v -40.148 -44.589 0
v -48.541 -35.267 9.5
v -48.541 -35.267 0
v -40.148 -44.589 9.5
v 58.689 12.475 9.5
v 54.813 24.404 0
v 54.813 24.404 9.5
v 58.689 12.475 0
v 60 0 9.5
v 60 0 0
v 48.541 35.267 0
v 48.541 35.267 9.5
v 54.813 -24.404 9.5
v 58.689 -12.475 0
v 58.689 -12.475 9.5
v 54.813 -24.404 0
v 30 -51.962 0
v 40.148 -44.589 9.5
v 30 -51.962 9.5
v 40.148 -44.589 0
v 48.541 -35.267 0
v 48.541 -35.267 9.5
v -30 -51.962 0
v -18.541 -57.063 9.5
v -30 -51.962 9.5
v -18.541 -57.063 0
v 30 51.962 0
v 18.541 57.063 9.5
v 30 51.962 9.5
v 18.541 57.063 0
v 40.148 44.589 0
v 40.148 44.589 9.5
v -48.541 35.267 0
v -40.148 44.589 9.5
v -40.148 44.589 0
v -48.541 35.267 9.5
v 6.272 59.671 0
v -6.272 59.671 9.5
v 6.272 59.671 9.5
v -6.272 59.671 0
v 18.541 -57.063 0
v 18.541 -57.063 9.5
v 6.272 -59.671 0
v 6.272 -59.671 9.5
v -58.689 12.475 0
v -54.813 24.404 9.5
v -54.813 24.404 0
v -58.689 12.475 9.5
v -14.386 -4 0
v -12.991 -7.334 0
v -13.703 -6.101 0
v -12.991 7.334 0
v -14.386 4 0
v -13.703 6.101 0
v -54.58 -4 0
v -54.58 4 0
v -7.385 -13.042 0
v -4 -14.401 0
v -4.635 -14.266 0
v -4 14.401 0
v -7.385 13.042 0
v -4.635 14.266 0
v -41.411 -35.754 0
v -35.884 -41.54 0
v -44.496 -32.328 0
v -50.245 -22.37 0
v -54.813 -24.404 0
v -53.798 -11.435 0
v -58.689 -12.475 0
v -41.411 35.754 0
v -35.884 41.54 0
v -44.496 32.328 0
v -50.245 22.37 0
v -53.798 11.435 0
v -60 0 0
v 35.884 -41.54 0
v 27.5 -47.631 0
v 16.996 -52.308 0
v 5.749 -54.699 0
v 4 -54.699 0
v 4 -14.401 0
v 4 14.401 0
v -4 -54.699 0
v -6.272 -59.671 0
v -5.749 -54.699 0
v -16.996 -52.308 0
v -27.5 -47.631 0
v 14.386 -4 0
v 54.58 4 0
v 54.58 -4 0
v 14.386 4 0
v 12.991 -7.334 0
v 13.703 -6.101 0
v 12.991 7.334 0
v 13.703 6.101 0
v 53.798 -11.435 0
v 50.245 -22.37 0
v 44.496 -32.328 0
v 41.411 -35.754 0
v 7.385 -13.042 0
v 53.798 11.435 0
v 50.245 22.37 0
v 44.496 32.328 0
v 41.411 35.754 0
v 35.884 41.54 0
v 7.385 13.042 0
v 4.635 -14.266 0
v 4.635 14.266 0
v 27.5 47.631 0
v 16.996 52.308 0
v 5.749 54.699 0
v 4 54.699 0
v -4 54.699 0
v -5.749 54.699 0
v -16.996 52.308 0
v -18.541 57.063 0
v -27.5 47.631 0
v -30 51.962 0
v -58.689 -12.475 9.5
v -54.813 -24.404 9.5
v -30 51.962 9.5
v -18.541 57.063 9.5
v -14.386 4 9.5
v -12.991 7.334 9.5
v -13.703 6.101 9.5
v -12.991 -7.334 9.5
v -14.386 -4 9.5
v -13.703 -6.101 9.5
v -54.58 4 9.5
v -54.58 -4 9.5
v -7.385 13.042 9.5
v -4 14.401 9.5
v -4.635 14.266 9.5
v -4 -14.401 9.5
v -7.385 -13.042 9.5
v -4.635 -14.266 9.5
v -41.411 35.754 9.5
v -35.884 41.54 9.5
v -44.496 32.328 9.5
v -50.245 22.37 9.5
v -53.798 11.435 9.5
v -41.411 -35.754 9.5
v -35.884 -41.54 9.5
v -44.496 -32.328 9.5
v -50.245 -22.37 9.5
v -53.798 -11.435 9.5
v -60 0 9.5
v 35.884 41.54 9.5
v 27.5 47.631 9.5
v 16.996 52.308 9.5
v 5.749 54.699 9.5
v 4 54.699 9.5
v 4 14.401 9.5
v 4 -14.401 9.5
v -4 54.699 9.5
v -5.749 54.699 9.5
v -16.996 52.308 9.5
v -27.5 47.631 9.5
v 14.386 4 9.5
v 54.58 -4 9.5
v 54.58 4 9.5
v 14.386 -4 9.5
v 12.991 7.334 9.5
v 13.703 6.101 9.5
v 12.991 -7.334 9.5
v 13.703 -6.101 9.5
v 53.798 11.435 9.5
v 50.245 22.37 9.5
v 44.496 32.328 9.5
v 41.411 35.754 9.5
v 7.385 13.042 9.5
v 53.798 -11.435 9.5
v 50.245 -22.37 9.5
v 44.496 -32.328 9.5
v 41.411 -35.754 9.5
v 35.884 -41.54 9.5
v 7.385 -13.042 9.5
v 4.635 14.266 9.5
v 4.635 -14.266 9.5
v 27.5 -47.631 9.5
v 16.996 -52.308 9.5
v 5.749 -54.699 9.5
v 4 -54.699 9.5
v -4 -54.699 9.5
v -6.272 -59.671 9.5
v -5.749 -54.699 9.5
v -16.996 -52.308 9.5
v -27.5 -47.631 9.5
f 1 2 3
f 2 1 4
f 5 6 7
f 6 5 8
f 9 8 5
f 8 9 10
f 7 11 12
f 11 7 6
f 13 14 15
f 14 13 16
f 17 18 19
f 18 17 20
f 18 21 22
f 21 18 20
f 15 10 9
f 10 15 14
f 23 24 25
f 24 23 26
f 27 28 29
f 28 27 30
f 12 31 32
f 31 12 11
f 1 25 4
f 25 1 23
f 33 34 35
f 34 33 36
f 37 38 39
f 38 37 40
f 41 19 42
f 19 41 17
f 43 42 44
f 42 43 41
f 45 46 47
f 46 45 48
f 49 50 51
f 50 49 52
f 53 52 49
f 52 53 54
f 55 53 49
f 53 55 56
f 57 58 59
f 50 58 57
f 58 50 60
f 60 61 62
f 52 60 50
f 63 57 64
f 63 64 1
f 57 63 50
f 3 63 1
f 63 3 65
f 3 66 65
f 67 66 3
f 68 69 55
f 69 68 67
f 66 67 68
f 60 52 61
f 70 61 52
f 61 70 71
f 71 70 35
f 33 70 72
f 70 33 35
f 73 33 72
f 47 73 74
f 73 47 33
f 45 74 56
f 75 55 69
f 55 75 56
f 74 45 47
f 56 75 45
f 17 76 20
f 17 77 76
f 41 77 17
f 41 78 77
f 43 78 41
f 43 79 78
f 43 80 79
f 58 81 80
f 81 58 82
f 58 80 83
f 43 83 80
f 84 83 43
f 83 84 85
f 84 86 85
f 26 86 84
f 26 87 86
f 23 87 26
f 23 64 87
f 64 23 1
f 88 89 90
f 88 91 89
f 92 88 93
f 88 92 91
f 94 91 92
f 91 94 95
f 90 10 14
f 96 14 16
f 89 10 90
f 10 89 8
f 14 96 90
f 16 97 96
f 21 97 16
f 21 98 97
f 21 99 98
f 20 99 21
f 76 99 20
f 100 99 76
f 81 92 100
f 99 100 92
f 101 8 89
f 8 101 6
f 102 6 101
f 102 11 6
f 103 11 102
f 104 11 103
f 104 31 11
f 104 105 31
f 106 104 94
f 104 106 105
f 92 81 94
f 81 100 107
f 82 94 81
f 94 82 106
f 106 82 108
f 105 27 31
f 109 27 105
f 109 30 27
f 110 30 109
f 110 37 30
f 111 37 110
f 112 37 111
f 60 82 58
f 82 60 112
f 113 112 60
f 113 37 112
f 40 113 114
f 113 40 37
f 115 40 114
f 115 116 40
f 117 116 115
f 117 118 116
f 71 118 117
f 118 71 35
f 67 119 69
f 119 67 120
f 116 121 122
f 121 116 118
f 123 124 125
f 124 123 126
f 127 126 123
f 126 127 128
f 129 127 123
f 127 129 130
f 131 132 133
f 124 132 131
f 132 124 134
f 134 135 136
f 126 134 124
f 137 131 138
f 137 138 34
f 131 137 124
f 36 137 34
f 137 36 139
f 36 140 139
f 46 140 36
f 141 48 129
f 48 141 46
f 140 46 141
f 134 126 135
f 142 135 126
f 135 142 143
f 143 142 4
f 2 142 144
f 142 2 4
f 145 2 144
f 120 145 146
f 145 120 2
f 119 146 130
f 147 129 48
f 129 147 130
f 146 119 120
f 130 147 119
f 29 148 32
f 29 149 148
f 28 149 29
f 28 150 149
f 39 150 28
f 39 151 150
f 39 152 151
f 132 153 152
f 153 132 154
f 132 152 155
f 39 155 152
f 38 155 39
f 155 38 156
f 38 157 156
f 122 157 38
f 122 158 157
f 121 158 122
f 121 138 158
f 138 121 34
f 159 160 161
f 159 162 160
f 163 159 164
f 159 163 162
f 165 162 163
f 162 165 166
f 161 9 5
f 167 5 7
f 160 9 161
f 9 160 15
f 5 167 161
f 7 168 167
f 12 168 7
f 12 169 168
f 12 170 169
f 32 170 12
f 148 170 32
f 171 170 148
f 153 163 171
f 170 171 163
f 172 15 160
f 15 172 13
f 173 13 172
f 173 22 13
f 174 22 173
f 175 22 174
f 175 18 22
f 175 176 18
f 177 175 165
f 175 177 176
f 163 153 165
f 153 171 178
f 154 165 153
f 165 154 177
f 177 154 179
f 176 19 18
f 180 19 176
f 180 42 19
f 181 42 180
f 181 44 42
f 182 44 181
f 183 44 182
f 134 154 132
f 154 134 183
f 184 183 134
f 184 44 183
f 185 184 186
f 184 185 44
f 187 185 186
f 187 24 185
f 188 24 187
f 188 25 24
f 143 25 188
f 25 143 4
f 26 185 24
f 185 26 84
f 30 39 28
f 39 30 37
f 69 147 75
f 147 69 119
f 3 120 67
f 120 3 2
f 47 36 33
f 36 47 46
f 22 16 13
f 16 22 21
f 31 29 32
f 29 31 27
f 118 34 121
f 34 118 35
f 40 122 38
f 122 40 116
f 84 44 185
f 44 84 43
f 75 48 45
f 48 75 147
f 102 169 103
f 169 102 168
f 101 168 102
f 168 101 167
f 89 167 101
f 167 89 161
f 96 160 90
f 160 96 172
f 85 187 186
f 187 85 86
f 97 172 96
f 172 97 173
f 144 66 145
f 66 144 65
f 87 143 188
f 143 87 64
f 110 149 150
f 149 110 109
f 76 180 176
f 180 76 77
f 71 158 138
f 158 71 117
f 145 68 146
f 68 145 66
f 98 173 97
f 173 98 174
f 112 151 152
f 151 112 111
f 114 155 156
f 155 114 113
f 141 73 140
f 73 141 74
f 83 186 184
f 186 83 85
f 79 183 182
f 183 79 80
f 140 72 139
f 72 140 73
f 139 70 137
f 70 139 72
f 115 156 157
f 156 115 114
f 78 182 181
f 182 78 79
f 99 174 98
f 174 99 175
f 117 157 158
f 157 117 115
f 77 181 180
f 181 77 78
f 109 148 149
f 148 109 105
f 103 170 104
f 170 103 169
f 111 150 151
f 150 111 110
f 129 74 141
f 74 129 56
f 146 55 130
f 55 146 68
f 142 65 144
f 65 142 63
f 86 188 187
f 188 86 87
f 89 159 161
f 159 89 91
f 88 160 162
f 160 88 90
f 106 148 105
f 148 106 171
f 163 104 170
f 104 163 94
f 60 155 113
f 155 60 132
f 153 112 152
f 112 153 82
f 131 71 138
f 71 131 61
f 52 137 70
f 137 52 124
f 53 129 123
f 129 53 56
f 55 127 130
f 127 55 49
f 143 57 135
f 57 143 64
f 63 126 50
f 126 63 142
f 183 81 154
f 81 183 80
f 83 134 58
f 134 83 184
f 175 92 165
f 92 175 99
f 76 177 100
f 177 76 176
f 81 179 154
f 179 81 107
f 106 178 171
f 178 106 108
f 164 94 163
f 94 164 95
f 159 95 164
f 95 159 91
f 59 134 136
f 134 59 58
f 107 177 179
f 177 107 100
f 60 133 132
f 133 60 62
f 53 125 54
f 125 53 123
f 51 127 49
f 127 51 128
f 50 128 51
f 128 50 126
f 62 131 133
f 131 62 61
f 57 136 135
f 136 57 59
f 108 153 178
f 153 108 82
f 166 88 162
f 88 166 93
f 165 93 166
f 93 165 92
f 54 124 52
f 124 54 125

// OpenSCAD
/* doodle-meta {"version":1,"parameters":{"outer_diameter":{"label":"Outer Diameter","description":"Diameter of the wheel rim","unit":"mm","feature":"wheel_body"},"wheel_thickness":{"label":"Wheel Thickness","description":"Thickness of the wheel (axial depth)","unit":"mm","feature":"wheel_body"},"hub_diameter":{"label":"Hub Diameter","description":"Diameter of the central hub","unit":"mm","feature":"wheel_body"},"spoke_count":{"label":"Spoke Count","description":"Number of spokes","unit":"count","feature":"wheel_body"},"spoke_width":{"label":"Spoke Width","description":"Width of each spoke","unit":"mm","feature":"wheel_body"}},"features":{"wheel_body":{"kind":"region","label":"Wheel Body","min":[0,0,0],"max":[{"parameter":"outer_diameter","scale":0.5},{"parameter":"wheel_thickness","offset":0},{"parameter":"outer_diameter","scale":0.5}]}}} */

// Parameters
outer_diameter = 120;
wheel_thickness = 9.5;
hub_diameter = 30;
spoke_count = 8;
spoke_width = 8;
rim_thickness = 5;

// Derived parameters
outer_radius = outer_diameter / 2;
hub_radius = hub_diameter / 2;
inner_rim_radius = outer_radius - rim_thickness;

// Spoke dimensions
spoke_start_radius = hub_radius - 2;
spoke_end_radius = inner_rim_radius + 2;
spoke_length = spoke_end_radius - spoke_start_radius;
spoke_center_radius = (spoke_start_radius + spoke_end_radius) / 2;

module wheel() {
    union() {
        // Rim
        difference() {
            cylinder(h = wheel_thickness, r = outer_radius, center = false);
            cylinder(h = wheel_thickness, r = inner_rim_radius, center = false);
        }
        
        // Hub
        cylinder(h = wheel_thickness, r = hub_radius, center = false);
        
        // Spokes
        for (i = [0 : spoke_count - 1]) {
            rotate([0, 0, i * (360 / spoke_count)]) {
                translate([spoke_center_radius, 0, wheel_thickness / 2]) {
                    cube([spoke_length, spoke_width, wheel_thickness], center = true);
                }
            }
        }
    }
}

wheel();
